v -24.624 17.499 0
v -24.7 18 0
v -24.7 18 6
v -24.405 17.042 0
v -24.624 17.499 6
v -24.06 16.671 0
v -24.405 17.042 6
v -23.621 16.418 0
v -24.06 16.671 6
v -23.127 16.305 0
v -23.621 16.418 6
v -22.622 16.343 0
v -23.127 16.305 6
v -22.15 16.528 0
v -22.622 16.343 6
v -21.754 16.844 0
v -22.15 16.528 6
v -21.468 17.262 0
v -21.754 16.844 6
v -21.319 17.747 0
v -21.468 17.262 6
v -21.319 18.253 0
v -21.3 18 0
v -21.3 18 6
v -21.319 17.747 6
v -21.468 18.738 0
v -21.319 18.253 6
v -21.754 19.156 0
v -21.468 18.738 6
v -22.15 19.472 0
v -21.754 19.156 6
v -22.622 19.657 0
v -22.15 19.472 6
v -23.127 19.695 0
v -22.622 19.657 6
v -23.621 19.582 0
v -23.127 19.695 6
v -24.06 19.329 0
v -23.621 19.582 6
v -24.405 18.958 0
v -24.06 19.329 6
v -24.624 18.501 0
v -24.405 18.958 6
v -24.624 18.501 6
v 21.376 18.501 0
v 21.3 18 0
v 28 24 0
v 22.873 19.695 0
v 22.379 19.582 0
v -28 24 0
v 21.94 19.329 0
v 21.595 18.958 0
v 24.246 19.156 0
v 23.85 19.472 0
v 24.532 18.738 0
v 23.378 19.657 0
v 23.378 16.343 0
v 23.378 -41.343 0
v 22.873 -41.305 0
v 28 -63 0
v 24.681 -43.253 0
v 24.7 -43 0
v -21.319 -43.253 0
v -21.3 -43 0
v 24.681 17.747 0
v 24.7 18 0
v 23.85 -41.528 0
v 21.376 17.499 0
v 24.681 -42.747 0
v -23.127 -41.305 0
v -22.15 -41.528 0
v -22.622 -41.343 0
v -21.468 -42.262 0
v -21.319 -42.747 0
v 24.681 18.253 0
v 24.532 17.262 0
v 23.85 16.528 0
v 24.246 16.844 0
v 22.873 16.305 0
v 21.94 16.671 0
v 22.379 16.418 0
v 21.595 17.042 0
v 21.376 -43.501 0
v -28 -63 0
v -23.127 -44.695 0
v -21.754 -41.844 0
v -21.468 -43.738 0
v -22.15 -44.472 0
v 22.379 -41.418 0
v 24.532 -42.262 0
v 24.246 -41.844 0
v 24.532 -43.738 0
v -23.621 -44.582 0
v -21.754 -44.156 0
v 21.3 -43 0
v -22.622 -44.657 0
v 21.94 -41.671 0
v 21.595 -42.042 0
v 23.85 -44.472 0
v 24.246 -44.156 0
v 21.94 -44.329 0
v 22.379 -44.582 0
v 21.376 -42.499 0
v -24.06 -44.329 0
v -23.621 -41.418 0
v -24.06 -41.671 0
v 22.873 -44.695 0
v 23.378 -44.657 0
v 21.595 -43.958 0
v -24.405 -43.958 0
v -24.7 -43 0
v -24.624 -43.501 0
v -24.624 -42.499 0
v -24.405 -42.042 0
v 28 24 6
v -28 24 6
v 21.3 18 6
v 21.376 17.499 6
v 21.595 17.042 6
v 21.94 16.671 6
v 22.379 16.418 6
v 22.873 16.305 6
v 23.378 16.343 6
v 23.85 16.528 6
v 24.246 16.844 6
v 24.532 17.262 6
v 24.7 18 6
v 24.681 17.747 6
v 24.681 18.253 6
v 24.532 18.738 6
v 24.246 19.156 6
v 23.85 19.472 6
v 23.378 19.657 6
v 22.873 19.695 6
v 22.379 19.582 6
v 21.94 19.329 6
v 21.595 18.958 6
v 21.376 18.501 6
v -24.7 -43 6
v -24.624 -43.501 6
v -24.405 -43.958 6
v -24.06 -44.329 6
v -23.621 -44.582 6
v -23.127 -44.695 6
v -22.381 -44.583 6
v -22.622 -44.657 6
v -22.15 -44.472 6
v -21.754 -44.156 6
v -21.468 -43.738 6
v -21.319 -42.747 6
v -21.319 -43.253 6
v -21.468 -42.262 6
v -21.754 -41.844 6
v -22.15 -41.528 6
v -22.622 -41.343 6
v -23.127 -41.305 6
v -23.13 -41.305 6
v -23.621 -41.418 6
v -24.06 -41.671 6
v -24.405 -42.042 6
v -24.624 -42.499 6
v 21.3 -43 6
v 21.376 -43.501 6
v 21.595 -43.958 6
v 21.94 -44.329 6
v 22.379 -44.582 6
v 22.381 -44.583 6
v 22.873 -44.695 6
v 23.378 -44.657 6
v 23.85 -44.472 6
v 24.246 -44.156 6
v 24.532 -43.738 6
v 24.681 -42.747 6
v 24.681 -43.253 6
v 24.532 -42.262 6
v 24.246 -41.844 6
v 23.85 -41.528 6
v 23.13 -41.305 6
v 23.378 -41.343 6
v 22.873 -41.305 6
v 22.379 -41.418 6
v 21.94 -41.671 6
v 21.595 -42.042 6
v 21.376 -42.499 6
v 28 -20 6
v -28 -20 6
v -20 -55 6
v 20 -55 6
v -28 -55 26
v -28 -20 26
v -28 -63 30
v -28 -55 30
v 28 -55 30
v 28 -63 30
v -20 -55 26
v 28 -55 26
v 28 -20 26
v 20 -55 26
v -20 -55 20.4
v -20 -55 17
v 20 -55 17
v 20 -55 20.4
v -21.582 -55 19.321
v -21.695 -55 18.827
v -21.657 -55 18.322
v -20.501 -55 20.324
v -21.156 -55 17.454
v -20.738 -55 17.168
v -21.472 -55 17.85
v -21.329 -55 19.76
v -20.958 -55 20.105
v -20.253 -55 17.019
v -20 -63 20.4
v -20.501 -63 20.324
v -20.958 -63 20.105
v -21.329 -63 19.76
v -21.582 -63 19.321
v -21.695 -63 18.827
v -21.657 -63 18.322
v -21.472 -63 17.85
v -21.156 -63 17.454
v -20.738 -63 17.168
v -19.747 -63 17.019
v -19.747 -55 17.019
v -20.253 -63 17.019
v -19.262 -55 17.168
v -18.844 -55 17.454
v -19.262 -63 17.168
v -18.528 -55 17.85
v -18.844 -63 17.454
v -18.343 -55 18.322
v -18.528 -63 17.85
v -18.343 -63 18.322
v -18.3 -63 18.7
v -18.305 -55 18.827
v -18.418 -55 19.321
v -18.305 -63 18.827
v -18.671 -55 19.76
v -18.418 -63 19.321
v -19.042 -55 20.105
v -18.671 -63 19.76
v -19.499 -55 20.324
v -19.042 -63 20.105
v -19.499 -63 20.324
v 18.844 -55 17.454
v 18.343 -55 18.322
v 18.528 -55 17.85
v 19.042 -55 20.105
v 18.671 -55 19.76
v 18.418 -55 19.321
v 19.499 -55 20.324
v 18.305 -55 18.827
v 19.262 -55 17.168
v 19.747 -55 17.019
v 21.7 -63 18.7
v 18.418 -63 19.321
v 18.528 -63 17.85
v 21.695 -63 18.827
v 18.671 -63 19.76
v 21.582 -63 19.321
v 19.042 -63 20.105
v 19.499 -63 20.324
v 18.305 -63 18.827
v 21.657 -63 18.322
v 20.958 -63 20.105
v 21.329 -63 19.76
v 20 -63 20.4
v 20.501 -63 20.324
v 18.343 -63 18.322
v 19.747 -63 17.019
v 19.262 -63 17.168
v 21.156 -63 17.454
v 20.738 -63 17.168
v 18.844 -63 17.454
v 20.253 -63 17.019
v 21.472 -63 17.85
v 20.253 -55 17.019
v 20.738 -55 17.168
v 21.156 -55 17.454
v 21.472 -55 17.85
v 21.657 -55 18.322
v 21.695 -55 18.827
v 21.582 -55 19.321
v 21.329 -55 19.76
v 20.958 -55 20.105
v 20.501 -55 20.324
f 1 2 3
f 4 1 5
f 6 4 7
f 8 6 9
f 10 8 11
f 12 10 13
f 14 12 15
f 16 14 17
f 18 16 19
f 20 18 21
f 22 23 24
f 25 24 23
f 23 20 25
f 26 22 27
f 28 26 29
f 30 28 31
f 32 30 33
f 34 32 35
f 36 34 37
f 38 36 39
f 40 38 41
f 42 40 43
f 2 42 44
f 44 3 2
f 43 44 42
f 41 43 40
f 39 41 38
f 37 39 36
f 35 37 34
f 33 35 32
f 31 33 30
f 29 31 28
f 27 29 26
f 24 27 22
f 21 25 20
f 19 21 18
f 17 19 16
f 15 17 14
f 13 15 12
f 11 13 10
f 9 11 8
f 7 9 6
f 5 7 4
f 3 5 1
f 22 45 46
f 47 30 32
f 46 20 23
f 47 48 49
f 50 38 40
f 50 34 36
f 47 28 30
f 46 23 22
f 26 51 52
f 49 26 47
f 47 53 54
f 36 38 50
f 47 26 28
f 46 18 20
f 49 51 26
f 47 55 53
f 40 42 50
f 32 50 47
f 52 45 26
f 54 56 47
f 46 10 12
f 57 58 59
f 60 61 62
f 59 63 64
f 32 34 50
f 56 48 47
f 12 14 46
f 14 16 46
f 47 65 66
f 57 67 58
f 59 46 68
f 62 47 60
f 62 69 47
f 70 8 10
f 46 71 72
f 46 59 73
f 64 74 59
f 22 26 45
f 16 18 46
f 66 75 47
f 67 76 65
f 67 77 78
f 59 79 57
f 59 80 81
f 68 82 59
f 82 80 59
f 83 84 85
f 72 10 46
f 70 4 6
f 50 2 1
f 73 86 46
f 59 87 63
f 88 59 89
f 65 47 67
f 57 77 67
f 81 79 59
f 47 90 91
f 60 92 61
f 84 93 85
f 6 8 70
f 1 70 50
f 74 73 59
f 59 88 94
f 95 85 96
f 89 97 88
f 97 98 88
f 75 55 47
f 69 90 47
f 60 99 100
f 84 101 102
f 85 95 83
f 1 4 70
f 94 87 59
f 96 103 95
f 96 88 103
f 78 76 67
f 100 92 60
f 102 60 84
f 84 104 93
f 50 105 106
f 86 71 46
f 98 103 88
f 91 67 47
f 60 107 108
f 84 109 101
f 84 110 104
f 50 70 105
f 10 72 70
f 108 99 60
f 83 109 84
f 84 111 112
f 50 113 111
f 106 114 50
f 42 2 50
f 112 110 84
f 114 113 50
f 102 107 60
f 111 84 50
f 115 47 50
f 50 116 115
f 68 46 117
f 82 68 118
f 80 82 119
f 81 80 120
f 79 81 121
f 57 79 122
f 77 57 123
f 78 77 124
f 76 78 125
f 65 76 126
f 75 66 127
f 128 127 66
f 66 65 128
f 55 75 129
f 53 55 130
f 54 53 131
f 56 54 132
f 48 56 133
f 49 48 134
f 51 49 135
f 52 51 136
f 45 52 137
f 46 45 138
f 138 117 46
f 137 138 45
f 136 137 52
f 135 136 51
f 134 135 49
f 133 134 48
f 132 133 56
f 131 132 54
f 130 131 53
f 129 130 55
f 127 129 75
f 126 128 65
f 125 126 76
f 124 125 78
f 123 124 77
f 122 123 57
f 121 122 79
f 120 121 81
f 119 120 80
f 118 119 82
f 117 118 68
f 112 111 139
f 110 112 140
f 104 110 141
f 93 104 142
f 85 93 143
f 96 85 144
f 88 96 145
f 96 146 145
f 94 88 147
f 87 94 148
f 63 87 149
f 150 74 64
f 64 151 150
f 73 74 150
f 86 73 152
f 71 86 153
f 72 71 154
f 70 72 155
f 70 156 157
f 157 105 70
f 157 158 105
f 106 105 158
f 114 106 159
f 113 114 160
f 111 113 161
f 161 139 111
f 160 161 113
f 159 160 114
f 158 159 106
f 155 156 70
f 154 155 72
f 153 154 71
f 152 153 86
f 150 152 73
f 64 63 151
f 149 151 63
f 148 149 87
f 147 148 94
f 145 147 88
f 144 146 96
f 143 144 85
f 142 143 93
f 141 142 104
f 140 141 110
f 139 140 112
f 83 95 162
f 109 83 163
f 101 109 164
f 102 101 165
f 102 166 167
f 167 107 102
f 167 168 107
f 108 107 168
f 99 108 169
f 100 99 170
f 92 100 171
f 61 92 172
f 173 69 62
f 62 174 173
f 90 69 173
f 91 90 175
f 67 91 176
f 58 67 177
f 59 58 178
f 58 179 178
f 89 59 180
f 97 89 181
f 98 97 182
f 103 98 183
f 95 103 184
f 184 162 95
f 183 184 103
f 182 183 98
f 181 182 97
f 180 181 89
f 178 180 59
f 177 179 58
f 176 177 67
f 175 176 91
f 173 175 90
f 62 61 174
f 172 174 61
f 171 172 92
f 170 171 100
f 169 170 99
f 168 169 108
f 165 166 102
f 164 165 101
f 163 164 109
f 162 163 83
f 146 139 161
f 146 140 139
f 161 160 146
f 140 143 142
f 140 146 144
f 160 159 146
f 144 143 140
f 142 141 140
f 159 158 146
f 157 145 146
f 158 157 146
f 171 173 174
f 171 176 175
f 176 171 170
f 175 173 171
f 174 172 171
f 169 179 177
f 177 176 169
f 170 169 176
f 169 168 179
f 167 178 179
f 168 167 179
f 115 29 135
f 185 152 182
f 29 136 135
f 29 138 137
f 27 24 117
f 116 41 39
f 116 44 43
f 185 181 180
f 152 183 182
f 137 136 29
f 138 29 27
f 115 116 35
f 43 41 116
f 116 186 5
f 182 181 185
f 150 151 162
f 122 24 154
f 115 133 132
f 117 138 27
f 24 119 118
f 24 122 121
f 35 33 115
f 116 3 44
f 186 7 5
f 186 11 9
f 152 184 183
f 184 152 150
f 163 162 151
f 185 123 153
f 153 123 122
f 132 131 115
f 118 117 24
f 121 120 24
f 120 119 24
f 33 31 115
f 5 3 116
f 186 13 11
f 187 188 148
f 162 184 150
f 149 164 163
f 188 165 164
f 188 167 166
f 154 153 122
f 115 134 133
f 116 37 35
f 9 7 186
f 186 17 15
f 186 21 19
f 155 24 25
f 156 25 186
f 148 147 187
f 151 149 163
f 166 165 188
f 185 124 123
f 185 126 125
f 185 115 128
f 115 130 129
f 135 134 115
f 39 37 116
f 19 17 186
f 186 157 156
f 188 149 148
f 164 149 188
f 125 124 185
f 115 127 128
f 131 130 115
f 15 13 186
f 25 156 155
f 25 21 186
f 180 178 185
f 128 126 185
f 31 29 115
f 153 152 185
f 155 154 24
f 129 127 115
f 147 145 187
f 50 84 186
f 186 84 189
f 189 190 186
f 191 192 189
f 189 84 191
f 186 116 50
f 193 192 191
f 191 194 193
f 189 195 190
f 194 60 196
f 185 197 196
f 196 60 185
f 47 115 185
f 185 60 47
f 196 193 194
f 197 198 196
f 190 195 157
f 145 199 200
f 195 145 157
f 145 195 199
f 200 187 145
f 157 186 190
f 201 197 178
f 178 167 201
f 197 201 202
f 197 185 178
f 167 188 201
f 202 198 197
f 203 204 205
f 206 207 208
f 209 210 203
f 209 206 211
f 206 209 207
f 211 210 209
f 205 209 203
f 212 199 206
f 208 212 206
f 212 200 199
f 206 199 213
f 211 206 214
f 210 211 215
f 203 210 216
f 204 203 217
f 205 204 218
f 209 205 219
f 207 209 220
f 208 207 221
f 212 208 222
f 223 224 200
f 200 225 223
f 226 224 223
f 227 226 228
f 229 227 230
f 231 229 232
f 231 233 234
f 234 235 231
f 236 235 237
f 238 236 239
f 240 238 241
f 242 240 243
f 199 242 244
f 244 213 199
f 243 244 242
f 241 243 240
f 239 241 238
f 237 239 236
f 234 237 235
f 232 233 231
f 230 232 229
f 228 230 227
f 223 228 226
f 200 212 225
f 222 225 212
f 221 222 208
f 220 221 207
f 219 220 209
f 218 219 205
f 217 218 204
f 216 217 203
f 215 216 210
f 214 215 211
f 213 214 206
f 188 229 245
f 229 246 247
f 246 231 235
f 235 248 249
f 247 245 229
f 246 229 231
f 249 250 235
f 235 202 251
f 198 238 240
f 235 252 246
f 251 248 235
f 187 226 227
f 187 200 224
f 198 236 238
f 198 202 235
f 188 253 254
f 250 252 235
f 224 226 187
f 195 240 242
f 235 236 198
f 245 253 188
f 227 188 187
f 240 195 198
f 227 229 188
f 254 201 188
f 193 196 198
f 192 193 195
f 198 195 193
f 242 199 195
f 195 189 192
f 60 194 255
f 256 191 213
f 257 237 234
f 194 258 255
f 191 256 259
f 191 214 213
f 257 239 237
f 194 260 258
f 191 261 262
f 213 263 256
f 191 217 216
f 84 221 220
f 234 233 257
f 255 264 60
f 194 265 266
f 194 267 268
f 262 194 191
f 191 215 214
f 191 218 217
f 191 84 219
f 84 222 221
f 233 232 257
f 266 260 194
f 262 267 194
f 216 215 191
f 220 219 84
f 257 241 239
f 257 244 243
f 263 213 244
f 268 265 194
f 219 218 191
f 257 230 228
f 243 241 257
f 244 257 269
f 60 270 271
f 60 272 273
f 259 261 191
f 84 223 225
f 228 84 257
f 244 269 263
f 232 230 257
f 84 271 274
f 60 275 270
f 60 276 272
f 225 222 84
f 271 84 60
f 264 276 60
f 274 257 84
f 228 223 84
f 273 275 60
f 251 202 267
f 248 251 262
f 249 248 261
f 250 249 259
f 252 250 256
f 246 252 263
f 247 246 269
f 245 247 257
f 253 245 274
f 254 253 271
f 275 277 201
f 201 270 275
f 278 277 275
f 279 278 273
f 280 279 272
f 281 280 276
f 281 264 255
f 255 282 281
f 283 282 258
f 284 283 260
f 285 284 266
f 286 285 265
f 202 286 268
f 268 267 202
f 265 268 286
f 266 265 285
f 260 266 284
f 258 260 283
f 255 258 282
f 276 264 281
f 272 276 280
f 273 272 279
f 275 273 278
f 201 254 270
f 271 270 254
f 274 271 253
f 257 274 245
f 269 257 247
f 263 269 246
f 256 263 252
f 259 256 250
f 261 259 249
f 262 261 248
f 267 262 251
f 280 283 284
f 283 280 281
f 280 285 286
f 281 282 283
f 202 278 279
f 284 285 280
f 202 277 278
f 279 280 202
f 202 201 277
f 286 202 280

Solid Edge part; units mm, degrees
sketch "Sketch1" plane through (0, 0, 0) normal (0, 0, 1) x (1, 0, 0)
  line L0 (-28, -63) -> (28, -63)
  line L1 (28, -63) -> (28, 24)
  line L2 (28, 24) -> (-28, 24)
  line L3 (-28, 24) -> (-28, -63)
  circle A0 centre (-23, -43) radius 1.7
  circle A1 centre (23, -43) radius 1.7
  circle A2 centre (-23, 18) radius 1.7
  circle A3 centre (23, 18) radius 1.7
extrude "Protrusion1" add sketch "Sketch1" along normal blind 6
sketch "Sketch2" plane through (0, 0, 6) normal (0, 0, 1) x (1, 0, 0)
  line L0 (-28, -63) -> (28, -63)
  line L1 (28, -63) -> (28, -55)
  line L2 (28, -55) -> (-28, -55)
  line L3 (-28, -55) -> (-28, -63)
extrude "ExtrudedProtrusion_2" add sketch "Sketch2" along normal blind 24
sketch "Sketch3" plane through (0, 0, 6) normal (0, 0, 1) x (1, 0, 0)
  line L0 (-28, -55) -> (-20, -55)
  line L1 (-20, -55) -> (-28, -20)
  line L2 (-28, -20) -> (-28, -55)
extrude "ExtrudedProtrusion_3" add sketch "Sketch3" along normal blind 20
sketch "Sketch4" plane through (0, 0, 6) normal (0, 0, 1) x (1, 0, 0)
  line L0 (28, -55) -> (20, -55)
  line L1 (20, -55) -> (28, -20)
  line L2 (28, -20) -> (28, -55)
extrude "ExtrudedProtrusion_4" add sketch "Sketch4" along normal blind 20
sketch "Sketch5" plane through (0, -55, 0) normal (0, -1, 0) x (1, 0, 0)
  circle A0 centre (-20, 18.7) radius 1.7
  circle A1 centre (20, 18.7) radius 1.7
extrude "ExtrudedCutout_1" cut sketch "Sketch5" along normal blind 8
